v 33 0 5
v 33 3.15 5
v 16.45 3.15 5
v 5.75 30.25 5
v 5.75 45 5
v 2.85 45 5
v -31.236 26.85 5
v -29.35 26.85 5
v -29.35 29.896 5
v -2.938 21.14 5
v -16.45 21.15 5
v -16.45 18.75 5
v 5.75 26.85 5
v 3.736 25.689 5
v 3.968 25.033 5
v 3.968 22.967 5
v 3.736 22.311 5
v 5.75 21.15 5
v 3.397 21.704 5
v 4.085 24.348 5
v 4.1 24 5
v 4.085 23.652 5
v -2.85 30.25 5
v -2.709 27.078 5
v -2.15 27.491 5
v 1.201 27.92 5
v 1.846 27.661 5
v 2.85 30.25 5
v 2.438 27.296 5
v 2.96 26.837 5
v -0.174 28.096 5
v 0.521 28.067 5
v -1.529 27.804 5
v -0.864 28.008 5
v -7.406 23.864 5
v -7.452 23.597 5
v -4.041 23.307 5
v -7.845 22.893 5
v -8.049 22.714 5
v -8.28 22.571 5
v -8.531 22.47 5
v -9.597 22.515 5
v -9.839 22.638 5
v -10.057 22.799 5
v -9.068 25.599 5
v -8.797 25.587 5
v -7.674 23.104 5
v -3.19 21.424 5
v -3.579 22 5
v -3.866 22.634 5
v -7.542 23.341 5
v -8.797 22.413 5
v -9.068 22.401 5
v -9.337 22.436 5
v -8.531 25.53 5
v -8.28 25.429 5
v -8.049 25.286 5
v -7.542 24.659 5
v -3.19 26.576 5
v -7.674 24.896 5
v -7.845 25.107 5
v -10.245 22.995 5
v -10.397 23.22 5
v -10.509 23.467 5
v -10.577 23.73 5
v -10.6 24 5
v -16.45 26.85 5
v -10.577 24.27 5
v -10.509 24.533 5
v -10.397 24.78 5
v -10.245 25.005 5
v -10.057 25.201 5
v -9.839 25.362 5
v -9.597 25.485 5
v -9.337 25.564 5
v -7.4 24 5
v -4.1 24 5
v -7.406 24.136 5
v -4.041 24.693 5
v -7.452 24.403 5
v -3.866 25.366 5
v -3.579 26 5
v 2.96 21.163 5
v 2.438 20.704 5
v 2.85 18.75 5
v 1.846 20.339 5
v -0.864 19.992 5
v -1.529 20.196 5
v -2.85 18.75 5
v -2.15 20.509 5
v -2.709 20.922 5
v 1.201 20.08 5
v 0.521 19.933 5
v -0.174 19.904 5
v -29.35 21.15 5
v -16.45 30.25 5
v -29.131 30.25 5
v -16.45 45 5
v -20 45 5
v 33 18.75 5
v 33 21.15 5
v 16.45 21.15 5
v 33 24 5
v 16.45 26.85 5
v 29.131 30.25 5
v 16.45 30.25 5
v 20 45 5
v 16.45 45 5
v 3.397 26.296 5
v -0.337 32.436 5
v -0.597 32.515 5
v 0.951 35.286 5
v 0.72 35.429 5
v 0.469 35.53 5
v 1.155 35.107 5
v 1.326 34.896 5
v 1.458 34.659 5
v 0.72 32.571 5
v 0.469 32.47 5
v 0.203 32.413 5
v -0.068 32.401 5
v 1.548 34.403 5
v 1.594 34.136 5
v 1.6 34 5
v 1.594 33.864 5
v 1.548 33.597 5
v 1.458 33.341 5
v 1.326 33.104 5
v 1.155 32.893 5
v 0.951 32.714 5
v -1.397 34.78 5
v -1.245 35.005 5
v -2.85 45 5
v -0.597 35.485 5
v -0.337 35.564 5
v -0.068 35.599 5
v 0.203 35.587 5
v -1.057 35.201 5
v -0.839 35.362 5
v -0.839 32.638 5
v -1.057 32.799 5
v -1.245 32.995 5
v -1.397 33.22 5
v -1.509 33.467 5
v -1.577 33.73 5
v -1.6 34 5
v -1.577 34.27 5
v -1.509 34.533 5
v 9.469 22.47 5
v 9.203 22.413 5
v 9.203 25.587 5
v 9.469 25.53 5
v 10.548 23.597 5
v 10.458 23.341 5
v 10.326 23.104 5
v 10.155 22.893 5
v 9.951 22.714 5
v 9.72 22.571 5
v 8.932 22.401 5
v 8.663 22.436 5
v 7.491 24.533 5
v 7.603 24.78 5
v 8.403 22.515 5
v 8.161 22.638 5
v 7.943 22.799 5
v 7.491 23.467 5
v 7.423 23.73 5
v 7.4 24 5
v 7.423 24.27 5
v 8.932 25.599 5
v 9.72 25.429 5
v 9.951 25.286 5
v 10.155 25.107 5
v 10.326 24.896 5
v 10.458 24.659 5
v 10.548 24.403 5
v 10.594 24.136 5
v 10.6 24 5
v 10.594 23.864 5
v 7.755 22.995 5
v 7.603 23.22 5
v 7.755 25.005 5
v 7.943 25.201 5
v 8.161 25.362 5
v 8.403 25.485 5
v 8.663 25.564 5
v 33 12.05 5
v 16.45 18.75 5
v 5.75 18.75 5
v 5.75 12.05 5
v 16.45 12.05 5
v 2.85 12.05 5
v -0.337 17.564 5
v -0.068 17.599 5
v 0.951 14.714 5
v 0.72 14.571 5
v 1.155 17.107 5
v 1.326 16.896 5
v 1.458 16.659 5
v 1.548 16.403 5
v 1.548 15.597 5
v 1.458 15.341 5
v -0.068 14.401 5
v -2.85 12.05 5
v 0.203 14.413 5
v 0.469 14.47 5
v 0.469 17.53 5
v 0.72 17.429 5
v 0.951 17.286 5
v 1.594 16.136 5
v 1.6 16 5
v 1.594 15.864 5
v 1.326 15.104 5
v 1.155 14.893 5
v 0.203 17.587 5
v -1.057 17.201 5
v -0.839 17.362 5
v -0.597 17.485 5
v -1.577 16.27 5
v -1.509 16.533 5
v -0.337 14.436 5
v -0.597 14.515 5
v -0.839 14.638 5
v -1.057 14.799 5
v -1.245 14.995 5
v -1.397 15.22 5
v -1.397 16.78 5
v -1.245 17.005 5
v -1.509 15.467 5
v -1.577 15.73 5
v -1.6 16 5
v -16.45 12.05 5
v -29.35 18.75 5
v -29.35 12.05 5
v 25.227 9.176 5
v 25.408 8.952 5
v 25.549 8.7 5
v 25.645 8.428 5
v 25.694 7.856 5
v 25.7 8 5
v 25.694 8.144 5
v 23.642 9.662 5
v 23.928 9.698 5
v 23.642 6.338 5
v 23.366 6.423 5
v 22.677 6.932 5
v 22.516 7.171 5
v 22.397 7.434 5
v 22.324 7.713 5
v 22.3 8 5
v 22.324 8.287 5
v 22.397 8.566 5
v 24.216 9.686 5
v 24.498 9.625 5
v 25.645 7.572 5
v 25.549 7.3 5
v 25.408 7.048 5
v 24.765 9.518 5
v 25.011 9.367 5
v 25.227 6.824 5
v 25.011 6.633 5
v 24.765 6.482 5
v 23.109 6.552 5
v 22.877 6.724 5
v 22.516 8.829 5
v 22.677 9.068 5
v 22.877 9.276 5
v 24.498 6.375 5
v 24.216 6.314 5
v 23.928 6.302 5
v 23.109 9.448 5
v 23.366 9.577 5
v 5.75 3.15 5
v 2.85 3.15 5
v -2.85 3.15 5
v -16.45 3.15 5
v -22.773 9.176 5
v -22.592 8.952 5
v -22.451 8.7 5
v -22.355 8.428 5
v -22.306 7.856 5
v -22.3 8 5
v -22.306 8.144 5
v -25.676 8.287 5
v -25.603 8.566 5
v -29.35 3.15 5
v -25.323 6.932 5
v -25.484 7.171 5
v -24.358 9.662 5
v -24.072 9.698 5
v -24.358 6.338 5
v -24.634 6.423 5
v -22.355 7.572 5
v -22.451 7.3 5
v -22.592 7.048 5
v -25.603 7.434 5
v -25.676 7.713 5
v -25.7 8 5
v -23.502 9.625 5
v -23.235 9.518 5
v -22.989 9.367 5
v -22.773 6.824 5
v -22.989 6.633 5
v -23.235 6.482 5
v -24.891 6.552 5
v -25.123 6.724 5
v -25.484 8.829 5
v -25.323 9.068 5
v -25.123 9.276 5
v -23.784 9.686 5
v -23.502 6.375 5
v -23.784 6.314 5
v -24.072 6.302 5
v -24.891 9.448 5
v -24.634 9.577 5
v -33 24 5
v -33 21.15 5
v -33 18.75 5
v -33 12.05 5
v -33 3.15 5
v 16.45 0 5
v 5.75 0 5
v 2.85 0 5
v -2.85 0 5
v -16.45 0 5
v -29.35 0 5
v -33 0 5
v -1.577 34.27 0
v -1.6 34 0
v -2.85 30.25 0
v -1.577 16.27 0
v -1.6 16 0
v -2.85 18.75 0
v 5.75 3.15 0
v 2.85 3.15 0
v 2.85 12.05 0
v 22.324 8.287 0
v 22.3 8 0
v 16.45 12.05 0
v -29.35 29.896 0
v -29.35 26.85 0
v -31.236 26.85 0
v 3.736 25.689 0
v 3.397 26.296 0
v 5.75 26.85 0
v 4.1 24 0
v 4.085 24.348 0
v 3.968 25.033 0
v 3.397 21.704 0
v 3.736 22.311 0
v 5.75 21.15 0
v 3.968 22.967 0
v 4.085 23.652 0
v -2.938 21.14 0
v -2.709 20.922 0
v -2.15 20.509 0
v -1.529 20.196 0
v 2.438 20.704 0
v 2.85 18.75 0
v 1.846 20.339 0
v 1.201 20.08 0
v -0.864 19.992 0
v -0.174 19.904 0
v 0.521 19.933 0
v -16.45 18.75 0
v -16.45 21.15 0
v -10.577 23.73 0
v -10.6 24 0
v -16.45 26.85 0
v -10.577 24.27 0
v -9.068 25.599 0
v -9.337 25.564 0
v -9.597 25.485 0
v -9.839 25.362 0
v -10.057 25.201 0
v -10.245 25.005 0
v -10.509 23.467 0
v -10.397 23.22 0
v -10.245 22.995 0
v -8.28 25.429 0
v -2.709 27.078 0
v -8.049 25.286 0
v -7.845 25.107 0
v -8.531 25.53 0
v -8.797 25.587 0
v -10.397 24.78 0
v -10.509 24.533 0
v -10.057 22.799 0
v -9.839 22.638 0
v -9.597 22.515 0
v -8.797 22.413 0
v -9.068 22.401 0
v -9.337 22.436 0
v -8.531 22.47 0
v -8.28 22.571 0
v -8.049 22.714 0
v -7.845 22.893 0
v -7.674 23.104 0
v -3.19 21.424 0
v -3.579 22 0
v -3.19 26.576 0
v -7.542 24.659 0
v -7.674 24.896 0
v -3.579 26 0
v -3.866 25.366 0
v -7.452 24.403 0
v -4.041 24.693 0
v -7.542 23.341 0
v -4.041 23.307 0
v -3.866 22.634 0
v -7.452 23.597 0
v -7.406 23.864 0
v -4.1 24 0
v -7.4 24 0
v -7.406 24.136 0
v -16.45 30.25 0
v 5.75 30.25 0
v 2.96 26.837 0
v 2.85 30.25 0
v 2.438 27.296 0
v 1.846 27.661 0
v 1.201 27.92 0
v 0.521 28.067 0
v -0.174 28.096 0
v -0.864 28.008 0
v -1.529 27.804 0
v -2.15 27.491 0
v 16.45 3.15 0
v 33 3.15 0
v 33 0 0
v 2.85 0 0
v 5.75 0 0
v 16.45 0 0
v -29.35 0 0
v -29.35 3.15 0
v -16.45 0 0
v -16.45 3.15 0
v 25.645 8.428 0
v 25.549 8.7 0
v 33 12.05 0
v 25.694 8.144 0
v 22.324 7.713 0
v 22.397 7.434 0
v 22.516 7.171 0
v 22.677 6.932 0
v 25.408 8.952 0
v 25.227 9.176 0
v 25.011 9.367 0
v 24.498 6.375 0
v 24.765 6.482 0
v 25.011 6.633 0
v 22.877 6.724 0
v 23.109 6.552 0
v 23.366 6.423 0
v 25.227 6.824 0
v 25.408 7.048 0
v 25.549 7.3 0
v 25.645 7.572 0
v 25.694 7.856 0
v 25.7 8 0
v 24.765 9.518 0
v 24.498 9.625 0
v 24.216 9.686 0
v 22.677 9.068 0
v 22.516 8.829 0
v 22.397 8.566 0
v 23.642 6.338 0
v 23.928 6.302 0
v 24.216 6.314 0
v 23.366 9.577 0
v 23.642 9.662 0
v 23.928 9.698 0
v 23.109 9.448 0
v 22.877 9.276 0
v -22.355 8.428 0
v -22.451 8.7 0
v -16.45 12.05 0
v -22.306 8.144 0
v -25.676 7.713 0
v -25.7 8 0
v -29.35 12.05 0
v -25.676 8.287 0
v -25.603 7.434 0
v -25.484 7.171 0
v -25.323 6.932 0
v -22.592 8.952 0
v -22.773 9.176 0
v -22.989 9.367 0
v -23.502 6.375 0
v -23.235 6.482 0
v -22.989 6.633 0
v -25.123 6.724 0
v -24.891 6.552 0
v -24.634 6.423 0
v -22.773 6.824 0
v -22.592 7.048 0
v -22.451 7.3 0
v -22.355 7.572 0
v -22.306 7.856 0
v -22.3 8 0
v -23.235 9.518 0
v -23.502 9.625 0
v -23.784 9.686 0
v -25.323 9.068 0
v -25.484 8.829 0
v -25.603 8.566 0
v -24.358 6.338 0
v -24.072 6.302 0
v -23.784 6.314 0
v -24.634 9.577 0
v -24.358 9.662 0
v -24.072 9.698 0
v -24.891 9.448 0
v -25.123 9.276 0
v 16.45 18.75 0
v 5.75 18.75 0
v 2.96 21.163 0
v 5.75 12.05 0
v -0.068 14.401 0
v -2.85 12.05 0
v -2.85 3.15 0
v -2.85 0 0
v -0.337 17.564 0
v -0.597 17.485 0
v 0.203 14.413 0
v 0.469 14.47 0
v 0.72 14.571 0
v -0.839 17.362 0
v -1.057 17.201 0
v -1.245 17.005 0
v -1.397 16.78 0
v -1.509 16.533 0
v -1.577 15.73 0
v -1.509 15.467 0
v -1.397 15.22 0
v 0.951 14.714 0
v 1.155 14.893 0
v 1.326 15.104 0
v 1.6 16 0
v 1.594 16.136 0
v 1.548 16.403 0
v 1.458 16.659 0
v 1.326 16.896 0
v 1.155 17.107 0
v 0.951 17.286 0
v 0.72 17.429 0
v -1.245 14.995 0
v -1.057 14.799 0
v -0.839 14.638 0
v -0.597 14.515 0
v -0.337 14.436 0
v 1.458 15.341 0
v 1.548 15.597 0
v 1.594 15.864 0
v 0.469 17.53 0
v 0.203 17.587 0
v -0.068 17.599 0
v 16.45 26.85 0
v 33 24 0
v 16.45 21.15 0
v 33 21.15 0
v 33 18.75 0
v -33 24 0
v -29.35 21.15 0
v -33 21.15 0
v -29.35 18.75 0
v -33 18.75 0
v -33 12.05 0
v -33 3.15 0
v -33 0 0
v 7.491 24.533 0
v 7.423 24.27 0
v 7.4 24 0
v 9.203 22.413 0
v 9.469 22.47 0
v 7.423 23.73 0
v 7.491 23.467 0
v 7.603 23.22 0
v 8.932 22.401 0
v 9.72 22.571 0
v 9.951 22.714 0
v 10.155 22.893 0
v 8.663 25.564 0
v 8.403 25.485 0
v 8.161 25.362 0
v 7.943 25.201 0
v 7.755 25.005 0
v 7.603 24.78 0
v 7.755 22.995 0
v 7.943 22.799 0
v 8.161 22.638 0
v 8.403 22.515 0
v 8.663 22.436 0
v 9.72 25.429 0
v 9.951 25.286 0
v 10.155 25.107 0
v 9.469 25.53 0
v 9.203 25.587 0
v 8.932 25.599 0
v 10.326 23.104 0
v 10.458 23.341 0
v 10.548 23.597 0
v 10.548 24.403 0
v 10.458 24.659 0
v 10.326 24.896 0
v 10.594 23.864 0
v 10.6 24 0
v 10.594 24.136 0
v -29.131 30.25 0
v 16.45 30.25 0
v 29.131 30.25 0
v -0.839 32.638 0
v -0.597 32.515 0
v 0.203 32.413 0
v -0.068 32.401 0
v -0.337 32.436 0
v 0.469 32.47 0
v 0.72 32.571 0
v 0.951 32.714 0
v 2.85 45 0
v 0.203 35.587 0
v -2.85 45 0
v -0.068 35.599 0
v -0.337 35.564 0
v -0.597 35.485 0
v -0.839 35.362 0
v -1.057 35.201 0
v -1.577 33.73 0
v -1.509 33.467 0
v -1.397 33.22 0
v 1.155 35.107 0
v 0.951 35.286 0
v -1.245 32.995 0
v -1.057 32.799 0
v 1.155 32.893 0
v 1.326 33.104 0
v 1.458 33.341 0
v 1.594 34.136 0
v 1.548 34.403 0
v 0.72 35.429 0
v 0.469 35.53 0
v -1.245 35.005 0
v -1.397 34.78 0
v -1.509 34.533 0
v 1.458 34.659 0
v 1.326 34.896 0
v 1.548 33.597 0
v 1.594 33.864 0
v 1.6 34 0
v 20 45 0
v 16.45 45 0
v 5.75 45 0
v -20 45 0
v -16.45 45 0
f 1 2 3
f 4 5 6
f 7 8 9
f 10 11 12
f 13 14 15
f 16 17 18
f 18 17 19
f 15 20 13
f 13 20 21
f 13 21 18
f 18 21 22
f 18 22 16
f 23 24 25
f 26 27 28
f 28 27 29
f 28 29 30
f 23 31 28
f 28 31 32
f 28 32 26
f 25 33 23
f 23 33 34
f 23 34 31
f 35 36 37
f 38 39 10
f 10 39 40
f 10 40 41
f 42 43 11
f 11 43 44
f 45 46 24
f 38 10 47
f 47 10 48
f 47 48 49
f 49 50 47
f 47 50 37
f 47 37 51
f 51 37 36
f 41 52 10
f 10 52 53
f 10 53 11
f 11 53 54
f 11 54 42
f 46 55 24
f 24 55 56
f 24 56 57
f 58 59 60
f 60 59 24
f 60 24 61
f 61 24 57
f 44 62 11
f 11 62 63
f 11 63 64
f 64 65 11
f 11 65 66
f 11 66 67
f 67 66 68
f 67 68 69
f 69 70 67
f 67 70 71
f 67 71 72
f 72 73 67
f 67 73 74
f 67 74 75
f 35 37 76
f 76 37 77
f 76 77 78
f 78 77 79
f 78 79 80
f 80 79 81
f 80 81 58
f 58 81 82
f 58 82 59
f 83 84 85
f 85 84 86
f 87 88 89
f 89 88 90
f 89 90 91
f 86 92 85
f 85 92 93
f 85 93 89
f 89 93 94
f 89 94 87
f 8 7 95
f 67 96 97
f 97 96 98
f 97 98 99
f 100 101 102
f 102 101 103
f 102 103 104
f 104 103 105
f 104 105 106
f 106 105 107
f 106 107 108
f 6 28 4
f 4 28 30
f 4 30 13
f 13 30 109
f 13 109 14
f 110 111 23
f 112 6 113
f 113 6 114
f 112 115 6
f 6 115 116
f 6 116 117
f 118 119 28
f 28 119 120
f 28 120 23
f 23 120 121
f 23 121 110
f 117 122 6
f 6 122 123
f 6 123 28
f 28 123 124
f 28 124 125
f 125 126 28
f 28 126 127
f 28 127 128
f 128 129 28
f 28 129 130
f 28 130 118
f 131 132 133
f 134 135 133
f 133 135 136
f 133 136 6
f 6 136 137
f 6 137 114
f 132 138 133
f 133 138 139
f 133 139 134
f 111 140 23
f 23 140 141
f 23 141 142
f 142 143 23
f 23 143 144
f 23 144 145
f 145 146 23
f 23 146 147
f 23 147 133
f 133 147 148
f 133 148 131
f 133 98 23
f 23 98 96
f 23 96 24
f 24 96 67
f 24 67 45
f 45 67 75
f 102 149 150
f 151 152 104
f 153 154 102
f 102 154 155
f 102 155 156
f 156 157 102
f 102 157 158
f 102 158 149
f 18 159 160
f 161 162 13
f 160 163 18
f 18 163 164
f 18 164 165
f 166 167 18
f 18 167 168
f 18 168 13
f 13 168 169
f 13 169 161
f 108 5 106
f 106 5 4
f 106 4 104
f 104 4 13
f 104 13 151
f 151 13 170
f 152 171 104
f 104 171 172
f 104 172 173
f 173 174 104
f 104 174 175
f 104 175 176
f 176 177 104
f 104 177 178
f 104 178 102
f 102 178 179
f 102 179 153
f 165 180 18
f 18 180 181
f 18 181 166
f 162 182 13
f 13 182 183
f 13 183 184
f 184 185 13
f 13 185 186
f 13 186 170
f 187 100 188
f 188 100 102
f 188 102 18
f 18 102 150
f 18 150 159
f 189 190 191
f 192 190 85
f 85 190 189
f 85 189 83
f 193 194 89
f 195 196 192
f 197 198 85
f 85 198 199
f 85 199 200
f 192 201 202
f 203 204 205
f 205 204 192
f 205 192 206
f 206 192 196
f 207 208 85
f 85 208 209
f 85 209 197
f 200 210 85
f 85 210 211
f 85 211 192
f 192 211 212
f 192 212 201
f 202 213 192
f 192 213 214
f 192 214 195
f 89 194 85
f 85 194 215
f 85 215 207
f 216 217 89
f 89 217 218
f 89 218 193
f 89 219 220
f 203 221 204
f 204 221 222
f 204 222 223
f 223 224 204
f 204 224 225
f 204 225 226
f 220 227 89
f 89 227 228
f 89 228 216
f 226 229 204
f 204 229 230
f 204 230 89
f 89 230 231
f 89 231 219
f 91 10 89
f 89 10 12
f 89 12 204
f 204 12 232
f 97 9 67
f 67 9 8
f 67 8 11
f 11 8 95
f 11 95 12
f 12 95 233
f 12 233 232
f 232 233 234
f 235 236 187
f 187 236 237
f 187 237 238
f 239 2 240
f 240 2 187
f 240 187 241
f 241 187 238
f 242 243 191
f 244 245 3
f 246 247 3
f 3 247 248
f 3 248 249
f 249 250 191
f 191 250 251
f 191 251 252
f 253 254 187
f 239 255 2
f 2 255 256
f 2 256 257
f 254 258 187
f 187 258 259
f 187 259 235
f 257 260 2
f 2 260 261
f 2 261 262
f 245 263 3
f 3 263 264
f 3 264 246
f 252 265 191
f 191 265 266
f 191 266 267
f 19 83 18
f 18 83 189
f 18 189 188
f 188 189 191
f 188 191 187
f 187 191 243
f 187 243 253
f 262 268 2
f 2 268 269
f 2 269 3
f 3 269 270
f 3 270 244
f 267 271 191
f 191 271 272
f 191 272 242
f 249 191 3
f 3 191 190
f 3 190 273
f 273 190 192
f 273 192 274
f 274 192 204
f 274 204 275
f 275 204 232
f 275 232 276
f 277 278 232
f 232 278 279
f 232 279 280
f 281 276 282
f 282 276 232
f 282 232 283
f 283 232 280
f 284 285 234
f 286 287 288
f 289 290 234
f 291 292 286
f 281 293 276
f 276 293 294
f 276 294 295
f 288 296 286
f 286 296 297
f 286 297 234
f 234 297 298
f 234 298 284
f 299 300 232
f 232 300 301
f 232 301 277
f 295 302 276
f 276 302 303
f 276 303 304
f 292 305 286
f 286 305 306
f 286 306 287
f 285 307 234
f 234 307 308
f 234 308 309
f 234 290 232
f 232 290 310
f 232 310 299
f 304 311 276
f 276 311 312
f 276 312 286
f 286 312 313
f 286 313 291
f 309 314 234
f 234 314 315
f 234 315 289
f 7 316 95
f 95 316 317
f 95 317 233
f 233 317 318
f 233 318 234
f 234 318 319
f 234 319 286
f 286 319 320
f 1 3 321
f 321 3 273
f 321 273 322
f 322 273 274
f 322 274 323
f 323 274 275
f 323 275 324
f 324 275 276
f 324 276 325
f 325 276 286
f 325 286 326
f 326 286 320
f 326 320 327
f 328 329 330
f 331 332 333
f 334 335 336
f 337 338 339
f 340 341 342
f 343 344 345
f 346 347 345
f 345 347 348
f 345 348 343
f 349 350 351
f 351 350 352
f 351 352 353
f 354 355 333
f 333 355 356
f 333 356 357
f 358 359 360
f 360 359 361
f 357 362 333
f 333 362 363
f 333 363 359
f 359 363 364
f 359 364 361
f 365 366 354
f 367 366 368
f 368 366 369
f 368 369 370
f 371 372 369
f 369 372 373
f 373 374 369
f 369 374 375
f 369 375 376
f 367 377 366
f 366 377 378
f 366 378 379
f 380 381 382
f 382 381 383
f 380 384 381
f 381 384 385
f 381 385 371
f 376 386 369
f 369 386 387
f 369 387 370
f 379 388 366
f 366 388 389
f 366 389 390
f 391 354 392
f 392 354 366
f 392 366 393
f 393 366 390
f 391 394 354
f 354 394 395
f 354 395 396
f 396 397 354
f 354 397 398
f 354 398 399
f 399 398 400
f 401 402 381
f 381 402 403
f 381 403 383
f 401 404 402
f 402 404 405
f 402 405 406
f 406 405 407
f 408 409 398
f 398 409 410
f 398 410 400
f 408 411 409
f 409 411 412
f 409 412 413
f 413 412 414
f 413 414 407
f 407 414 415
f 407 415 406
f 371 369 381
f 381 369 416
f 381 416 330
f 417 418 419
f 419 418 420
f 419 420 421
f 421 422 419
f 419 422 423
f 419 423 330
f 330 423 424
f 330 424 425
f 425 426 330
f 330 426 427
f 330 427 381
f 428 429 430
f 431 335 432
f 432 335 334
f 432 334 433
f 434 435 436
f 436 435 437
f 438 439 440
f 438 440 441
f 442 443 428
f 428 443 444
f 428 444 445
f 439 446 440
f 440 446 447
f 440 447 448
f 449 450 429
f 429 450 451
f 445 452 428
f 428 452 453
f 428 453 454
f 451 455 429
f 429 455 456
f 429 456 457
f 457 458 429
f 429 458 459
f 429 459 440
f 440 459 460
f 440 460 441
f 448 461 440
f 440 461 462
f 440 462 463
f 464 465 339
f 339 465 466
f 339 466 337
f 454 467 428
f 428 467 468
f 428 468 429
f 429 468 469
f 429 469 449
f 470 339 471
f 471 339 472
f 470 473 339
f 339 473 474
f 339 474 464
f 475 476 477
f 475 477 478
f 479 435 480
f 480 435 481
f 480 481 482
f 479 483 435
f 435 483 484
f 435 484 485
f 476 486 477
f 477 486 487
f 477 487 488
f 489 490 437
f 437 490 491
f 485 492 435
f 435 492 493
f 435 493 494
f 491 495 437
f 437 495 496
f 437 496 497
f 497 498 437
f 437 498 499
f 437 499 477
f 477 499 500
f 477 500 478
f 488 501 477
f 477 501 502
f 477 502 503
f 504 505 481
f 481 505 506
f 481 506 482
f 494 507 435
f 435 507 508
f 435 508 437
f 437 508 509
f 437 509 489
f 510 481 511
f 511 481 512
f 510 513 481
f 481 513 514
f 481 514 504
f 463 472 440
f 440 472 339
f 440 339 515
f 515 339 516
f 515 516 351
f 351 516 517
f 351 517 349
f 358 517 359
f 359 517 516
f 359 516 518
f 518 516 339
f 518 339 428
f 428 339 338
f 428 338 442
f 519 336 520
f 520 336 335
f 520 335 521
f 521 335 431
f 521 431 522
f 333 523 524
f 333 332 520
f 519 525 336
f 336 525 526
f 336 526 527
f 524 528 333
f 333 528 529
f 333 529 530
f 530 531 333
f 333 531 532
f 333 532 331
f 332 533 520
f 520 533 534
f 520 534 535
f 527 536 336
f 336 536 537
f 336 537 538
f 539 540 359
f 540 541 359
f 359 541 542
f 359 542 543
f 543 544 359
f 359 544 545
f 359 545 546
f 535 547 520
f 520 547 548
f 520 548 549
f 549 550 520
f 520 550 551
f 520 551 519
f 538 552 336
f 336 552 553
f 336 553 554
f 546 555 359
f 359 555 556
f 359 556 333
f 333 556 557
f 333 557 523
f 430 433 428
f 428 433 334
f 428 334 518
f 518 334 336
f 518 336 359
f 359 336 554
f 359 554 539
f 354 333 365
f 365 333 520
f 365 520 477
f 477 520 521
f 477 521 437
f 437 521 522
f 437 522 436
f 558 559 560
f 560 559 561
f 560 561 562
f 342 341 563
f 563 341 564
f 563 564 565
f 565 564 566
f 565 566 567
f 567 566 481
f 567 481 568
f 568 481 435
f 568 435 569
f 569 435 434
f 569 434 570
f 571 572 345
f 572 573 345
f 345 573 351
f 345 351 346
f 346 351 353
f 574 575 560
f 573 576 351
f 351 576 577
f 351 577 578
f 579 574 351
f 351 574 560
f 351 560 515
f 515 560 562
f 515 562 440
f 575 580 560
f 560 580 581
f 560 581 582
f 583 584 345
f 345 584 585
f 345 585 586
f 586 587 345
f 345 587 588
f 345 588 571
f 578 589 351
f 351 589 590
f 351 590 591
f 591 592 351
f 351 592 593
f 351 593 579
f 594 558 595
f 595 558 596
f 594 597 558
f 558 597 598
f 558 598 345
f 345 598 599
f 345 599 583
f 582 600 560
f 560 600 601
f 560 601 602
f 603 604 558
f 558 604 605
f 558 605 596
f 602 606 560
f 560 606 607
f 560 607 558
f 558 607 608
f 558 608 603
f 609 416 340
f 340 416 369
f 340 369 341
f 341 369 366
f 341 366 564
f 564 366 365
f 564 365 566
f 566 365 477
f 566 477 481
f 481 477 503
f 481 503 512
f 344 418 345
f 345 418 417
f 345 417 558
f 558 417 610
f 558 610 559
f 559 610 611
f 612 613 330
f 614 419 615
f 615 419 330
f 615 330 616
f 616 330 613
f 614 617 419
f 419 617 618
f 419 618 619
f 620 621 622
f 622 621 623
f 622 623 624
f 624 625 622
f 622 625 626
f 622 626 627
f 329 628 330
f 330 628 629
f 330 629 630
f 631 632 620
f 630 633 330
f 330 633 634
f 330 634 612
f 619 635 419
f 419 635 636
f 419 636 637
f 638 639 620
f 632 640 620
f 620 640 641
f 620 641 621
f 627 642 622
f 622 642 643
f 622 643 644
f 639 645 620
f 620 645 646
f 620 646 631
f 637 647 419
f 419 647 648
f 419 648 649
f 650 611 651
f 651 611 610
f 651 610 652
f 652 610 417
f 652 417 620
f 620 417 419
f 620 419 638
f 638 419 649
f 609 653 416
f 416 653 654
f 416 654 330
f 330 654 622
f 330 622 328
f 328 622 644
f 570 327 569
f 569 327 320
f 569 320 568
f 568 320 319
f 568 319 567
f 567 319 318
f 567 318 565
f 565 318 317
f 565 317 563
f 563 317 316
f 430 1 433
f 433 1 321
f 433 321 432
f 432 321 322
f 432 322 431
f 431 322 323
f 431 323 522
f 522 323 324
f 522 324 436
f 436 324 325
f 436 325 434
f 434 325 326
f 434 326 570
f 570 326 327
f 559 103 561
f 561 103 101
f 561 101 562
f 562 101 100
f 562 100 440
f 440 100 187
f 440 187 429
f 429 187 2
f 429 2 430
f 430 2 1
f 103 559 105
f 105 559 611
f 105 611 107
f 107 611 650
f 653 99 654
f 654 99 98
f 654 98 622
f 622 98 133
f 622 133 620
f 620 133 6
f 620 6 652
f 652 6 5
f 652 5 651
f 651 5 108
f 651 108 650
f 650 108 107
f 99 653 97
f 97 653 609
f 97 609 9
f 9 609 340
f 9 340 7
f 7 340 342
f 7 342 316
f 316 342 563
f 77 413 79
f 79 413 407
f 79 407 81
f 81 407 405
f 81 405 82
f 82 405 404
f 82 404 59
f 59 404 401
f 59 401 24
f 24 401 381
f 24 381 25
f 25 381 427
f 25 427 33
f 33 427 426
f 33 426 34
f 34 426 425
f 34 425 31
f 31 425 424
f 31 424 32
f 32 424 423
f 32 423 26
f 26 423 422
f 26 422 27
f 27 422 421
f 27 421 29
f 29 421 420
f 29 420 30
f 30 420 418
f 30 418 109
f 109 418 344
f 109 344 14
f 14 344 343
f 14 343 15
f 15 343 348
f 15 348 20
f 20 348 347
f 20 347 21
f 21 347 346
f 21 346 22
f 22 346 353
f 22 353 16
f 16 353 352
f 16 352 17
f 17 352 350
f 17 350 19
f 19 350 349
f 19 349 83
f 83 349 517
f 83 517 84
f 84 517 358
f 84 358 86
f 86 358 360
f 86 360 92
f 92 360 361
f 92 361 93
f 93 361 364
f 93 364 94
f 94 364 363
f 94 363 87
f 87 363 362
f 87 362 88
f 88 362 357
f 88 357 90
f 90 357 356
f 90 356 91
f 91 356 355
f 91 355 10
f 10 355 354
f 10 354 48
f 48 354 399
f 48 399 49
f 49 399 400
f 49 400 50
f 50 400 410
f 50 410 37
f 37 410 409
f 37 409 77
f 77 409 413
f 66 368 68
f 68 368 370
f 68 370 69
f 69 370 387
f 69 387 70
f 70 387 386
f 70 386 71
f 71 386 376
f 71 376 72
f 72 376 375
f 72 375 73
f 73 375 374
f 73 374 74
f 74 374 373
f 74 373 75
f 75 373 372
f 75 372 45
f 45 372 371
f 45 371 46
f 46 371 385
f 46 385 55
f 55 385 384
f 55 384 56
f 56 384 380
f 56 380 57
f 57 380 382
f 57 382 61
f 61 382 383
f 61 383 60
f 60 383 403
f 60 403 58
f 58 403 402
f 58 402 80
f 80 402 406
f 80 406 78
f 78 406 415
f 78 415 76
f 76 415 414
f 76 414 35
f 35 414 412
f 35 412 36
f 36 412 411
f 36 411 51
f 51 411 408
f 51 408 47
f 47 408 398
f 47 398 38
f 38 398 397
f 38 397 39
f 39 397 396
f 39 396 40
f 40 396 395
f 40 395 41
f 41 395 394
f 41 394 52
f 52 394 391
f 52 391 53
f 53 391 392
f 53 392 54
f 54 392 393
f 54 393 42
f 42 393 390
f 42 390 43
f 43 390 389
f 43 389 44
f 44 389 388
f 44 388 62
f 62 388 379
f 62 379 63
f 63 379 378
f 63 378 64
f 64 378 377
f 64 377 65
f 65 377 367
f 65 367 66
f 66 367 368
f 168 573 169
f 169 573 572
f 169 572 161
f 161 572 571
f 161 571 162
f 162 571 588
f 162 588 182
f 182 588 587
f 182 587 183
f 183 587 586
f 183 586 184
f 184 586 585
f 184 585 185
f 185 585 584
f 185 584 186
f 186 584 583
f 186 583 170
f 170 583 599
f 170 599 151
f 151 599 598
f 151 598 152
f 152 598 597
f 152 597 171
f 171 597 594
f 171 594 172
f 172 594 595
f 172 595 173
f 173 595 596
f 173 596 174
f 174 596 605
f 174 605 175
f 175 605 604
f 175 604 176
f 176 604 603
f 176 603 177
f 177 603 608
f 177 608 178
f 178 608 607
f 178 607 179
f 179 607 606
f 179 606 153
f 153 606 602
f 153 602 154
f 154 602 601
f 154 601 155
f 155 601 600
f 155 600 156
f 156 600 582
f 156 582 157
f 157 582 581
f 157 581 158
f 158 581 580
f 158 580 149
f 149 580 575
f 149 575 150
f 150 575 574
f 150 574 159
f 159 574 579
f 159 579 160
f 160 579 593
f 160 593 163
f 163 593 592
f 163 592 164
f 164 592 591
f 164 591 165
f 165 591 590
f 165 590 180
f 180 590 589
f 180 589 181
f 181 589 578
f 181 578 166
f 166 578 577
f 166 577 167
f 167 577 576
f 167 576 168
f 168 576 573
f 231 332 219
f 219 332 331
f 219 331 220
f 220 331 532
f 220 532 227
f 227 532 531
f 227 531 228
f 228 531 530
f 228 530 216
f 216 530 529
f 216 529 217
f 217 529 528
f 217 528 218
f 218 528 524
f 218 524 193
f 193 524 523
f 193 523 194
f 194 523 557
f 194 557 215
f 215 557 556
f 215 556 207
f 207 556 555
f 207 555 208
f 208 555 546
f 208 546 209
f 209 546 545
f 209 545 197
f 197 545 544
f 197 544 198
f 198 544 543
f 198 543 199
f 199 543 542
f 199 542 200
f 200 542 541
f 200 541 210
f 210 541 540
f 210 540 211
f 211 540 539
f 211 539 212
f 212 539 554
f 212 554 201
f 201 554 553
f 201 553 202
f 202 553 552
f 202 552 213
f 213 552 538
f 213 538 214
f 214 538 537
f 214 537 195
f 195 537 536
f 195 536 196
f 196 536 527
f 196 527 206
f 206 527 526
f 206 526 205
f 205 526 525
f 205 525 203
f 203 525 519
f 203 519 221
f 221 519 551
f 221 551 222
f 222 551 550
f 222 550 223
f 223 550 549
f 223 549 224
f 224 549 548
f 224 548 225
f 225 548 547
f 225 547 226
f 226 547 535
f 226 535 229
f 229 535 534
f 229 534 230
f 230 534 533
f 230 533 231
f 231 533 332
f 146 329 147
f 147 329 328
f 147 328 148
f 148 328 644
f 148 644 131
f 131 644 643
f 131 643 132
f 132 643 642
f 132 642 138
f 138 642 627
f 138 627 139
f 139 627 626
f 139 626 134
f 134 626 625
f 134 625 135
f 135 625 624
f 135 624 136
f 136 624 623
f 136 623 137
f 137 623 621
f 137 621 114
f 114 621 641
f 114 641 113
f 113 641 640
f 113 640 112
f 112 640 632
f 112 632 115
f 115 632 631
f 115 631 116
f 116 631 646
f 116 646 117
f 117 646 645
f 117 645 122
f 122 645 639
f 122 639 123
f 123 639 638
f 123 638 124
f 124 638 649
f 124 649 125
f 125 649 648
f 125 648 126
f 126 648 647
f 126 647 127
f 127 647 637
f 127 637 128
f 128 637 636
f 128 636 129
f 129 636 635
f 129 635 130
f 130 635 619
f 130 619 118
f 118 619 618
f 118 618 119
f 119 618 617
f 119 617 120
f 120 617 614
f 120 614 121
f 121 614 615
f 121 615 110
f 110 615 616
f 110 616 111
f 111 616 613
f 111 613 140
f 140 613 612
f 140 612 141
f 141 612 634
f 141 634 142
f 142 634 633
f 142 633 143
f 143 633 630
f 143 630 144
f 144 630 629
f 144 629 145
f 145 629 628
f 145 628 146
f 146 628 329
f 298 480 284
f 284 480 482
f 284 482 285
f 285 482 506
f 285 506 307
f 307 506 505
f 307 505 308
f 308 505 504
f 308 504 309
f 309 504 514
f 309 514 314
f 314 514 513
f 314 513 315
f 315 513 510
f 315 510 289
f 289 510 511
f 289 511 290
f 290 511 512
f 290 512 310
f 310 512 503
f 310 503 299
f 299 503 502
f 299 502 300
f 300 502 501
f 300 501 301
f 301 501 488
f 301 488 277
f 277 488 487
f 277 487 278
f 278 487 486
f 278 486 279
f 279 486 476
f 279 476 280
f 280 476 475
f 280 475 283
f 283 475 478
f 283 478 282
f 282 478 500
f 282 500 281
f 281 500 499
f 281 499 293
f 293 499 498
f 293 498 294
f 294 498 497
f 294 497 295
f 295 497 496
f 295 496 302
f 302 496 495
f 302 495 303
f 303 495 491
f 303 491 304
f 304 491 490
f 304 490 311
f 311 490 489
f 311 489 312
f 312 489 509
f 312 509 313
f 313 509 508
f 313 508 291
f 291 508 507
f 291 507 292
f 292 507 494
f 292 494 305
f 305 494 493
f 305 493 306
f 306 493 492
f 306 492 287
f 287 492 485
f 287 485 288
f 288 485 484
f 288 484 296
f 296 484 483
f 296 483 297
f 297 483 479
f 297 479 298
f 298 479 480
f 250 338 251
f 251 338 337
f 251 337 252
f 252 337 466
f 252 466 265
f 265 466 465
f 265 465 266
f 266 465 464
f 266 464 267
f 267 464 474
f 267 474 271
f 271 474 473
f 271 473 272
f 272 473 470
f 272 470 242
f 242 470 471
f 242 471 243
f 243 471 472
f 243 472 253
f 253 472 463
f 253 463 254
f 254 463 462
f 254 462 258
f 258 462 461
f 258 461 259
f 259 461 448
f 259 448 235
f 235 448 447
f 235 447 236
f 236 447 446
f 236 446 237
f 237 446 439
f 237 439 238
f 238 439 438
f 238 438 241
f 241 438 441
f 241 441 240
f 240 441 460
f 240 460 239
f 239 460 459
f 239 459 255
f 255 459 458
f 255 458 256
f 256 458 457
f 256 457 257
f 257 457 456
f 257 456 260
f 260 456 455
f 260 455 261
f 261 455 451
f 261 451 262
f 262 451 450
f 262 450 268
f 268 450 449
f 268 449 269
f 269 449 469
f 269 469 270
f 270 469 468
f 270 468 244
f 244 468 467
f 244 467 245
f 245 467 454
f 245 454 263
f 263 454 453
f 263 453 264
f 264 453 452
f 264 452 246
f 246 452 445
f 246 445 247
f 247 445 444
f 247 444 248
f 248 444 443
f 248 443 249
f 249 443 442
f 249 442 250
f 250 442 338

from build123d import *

# Parameters (mm, degrees)
SKETCH_1_R                 = 4.1
SKETCH_1_R_2               = 1.6
SKETCH_1_R_3               = 1.7
F_10_CAMERA_SIDE_EAR_DEPTH = 5


with BuildPart() as part:
    # Эскиз1 → 10_Camera_side_ear (new body)
    with BuildSketch(Plane.XY):
        Polygon((-33, 0), (33, 0), (33, 24), (20, 45), (-20, 45), (-33, 24), align=None)
        with Locations((0, 24)):
            Circle(SKETCH_1_R, mode=Mode.SUBTRACT)
        with Locations((-9, 24)):
            Circle(SKETCH_1_R_2, mode=Mode.SUBTRACT)
        with Locations((9, 24)):
            Circle(SKETCH_1_R_2, mode=Mode.SUBTRACT)
        with Locations((0, 16)):
            Circle(SKETCH_1_R_2, mode=Mode.SUBTRACT)
        with Locations((0, 34)):
            Circle(SKETCH_1_R_2, mode=Mode.SUBTRACT)
        with Locations((-24, 8)):
            Circle(SKETCH_1_R_3, mode=Mode.SUBTRACT)
        with Locations((24, 8)):
            Circle(SKETCH_1_R_3, mode=Mode.SUBTRACT)
    extrude(amount=F_10_CAMERA_SIDE_EAR_DEPTH)


solid = part.part
